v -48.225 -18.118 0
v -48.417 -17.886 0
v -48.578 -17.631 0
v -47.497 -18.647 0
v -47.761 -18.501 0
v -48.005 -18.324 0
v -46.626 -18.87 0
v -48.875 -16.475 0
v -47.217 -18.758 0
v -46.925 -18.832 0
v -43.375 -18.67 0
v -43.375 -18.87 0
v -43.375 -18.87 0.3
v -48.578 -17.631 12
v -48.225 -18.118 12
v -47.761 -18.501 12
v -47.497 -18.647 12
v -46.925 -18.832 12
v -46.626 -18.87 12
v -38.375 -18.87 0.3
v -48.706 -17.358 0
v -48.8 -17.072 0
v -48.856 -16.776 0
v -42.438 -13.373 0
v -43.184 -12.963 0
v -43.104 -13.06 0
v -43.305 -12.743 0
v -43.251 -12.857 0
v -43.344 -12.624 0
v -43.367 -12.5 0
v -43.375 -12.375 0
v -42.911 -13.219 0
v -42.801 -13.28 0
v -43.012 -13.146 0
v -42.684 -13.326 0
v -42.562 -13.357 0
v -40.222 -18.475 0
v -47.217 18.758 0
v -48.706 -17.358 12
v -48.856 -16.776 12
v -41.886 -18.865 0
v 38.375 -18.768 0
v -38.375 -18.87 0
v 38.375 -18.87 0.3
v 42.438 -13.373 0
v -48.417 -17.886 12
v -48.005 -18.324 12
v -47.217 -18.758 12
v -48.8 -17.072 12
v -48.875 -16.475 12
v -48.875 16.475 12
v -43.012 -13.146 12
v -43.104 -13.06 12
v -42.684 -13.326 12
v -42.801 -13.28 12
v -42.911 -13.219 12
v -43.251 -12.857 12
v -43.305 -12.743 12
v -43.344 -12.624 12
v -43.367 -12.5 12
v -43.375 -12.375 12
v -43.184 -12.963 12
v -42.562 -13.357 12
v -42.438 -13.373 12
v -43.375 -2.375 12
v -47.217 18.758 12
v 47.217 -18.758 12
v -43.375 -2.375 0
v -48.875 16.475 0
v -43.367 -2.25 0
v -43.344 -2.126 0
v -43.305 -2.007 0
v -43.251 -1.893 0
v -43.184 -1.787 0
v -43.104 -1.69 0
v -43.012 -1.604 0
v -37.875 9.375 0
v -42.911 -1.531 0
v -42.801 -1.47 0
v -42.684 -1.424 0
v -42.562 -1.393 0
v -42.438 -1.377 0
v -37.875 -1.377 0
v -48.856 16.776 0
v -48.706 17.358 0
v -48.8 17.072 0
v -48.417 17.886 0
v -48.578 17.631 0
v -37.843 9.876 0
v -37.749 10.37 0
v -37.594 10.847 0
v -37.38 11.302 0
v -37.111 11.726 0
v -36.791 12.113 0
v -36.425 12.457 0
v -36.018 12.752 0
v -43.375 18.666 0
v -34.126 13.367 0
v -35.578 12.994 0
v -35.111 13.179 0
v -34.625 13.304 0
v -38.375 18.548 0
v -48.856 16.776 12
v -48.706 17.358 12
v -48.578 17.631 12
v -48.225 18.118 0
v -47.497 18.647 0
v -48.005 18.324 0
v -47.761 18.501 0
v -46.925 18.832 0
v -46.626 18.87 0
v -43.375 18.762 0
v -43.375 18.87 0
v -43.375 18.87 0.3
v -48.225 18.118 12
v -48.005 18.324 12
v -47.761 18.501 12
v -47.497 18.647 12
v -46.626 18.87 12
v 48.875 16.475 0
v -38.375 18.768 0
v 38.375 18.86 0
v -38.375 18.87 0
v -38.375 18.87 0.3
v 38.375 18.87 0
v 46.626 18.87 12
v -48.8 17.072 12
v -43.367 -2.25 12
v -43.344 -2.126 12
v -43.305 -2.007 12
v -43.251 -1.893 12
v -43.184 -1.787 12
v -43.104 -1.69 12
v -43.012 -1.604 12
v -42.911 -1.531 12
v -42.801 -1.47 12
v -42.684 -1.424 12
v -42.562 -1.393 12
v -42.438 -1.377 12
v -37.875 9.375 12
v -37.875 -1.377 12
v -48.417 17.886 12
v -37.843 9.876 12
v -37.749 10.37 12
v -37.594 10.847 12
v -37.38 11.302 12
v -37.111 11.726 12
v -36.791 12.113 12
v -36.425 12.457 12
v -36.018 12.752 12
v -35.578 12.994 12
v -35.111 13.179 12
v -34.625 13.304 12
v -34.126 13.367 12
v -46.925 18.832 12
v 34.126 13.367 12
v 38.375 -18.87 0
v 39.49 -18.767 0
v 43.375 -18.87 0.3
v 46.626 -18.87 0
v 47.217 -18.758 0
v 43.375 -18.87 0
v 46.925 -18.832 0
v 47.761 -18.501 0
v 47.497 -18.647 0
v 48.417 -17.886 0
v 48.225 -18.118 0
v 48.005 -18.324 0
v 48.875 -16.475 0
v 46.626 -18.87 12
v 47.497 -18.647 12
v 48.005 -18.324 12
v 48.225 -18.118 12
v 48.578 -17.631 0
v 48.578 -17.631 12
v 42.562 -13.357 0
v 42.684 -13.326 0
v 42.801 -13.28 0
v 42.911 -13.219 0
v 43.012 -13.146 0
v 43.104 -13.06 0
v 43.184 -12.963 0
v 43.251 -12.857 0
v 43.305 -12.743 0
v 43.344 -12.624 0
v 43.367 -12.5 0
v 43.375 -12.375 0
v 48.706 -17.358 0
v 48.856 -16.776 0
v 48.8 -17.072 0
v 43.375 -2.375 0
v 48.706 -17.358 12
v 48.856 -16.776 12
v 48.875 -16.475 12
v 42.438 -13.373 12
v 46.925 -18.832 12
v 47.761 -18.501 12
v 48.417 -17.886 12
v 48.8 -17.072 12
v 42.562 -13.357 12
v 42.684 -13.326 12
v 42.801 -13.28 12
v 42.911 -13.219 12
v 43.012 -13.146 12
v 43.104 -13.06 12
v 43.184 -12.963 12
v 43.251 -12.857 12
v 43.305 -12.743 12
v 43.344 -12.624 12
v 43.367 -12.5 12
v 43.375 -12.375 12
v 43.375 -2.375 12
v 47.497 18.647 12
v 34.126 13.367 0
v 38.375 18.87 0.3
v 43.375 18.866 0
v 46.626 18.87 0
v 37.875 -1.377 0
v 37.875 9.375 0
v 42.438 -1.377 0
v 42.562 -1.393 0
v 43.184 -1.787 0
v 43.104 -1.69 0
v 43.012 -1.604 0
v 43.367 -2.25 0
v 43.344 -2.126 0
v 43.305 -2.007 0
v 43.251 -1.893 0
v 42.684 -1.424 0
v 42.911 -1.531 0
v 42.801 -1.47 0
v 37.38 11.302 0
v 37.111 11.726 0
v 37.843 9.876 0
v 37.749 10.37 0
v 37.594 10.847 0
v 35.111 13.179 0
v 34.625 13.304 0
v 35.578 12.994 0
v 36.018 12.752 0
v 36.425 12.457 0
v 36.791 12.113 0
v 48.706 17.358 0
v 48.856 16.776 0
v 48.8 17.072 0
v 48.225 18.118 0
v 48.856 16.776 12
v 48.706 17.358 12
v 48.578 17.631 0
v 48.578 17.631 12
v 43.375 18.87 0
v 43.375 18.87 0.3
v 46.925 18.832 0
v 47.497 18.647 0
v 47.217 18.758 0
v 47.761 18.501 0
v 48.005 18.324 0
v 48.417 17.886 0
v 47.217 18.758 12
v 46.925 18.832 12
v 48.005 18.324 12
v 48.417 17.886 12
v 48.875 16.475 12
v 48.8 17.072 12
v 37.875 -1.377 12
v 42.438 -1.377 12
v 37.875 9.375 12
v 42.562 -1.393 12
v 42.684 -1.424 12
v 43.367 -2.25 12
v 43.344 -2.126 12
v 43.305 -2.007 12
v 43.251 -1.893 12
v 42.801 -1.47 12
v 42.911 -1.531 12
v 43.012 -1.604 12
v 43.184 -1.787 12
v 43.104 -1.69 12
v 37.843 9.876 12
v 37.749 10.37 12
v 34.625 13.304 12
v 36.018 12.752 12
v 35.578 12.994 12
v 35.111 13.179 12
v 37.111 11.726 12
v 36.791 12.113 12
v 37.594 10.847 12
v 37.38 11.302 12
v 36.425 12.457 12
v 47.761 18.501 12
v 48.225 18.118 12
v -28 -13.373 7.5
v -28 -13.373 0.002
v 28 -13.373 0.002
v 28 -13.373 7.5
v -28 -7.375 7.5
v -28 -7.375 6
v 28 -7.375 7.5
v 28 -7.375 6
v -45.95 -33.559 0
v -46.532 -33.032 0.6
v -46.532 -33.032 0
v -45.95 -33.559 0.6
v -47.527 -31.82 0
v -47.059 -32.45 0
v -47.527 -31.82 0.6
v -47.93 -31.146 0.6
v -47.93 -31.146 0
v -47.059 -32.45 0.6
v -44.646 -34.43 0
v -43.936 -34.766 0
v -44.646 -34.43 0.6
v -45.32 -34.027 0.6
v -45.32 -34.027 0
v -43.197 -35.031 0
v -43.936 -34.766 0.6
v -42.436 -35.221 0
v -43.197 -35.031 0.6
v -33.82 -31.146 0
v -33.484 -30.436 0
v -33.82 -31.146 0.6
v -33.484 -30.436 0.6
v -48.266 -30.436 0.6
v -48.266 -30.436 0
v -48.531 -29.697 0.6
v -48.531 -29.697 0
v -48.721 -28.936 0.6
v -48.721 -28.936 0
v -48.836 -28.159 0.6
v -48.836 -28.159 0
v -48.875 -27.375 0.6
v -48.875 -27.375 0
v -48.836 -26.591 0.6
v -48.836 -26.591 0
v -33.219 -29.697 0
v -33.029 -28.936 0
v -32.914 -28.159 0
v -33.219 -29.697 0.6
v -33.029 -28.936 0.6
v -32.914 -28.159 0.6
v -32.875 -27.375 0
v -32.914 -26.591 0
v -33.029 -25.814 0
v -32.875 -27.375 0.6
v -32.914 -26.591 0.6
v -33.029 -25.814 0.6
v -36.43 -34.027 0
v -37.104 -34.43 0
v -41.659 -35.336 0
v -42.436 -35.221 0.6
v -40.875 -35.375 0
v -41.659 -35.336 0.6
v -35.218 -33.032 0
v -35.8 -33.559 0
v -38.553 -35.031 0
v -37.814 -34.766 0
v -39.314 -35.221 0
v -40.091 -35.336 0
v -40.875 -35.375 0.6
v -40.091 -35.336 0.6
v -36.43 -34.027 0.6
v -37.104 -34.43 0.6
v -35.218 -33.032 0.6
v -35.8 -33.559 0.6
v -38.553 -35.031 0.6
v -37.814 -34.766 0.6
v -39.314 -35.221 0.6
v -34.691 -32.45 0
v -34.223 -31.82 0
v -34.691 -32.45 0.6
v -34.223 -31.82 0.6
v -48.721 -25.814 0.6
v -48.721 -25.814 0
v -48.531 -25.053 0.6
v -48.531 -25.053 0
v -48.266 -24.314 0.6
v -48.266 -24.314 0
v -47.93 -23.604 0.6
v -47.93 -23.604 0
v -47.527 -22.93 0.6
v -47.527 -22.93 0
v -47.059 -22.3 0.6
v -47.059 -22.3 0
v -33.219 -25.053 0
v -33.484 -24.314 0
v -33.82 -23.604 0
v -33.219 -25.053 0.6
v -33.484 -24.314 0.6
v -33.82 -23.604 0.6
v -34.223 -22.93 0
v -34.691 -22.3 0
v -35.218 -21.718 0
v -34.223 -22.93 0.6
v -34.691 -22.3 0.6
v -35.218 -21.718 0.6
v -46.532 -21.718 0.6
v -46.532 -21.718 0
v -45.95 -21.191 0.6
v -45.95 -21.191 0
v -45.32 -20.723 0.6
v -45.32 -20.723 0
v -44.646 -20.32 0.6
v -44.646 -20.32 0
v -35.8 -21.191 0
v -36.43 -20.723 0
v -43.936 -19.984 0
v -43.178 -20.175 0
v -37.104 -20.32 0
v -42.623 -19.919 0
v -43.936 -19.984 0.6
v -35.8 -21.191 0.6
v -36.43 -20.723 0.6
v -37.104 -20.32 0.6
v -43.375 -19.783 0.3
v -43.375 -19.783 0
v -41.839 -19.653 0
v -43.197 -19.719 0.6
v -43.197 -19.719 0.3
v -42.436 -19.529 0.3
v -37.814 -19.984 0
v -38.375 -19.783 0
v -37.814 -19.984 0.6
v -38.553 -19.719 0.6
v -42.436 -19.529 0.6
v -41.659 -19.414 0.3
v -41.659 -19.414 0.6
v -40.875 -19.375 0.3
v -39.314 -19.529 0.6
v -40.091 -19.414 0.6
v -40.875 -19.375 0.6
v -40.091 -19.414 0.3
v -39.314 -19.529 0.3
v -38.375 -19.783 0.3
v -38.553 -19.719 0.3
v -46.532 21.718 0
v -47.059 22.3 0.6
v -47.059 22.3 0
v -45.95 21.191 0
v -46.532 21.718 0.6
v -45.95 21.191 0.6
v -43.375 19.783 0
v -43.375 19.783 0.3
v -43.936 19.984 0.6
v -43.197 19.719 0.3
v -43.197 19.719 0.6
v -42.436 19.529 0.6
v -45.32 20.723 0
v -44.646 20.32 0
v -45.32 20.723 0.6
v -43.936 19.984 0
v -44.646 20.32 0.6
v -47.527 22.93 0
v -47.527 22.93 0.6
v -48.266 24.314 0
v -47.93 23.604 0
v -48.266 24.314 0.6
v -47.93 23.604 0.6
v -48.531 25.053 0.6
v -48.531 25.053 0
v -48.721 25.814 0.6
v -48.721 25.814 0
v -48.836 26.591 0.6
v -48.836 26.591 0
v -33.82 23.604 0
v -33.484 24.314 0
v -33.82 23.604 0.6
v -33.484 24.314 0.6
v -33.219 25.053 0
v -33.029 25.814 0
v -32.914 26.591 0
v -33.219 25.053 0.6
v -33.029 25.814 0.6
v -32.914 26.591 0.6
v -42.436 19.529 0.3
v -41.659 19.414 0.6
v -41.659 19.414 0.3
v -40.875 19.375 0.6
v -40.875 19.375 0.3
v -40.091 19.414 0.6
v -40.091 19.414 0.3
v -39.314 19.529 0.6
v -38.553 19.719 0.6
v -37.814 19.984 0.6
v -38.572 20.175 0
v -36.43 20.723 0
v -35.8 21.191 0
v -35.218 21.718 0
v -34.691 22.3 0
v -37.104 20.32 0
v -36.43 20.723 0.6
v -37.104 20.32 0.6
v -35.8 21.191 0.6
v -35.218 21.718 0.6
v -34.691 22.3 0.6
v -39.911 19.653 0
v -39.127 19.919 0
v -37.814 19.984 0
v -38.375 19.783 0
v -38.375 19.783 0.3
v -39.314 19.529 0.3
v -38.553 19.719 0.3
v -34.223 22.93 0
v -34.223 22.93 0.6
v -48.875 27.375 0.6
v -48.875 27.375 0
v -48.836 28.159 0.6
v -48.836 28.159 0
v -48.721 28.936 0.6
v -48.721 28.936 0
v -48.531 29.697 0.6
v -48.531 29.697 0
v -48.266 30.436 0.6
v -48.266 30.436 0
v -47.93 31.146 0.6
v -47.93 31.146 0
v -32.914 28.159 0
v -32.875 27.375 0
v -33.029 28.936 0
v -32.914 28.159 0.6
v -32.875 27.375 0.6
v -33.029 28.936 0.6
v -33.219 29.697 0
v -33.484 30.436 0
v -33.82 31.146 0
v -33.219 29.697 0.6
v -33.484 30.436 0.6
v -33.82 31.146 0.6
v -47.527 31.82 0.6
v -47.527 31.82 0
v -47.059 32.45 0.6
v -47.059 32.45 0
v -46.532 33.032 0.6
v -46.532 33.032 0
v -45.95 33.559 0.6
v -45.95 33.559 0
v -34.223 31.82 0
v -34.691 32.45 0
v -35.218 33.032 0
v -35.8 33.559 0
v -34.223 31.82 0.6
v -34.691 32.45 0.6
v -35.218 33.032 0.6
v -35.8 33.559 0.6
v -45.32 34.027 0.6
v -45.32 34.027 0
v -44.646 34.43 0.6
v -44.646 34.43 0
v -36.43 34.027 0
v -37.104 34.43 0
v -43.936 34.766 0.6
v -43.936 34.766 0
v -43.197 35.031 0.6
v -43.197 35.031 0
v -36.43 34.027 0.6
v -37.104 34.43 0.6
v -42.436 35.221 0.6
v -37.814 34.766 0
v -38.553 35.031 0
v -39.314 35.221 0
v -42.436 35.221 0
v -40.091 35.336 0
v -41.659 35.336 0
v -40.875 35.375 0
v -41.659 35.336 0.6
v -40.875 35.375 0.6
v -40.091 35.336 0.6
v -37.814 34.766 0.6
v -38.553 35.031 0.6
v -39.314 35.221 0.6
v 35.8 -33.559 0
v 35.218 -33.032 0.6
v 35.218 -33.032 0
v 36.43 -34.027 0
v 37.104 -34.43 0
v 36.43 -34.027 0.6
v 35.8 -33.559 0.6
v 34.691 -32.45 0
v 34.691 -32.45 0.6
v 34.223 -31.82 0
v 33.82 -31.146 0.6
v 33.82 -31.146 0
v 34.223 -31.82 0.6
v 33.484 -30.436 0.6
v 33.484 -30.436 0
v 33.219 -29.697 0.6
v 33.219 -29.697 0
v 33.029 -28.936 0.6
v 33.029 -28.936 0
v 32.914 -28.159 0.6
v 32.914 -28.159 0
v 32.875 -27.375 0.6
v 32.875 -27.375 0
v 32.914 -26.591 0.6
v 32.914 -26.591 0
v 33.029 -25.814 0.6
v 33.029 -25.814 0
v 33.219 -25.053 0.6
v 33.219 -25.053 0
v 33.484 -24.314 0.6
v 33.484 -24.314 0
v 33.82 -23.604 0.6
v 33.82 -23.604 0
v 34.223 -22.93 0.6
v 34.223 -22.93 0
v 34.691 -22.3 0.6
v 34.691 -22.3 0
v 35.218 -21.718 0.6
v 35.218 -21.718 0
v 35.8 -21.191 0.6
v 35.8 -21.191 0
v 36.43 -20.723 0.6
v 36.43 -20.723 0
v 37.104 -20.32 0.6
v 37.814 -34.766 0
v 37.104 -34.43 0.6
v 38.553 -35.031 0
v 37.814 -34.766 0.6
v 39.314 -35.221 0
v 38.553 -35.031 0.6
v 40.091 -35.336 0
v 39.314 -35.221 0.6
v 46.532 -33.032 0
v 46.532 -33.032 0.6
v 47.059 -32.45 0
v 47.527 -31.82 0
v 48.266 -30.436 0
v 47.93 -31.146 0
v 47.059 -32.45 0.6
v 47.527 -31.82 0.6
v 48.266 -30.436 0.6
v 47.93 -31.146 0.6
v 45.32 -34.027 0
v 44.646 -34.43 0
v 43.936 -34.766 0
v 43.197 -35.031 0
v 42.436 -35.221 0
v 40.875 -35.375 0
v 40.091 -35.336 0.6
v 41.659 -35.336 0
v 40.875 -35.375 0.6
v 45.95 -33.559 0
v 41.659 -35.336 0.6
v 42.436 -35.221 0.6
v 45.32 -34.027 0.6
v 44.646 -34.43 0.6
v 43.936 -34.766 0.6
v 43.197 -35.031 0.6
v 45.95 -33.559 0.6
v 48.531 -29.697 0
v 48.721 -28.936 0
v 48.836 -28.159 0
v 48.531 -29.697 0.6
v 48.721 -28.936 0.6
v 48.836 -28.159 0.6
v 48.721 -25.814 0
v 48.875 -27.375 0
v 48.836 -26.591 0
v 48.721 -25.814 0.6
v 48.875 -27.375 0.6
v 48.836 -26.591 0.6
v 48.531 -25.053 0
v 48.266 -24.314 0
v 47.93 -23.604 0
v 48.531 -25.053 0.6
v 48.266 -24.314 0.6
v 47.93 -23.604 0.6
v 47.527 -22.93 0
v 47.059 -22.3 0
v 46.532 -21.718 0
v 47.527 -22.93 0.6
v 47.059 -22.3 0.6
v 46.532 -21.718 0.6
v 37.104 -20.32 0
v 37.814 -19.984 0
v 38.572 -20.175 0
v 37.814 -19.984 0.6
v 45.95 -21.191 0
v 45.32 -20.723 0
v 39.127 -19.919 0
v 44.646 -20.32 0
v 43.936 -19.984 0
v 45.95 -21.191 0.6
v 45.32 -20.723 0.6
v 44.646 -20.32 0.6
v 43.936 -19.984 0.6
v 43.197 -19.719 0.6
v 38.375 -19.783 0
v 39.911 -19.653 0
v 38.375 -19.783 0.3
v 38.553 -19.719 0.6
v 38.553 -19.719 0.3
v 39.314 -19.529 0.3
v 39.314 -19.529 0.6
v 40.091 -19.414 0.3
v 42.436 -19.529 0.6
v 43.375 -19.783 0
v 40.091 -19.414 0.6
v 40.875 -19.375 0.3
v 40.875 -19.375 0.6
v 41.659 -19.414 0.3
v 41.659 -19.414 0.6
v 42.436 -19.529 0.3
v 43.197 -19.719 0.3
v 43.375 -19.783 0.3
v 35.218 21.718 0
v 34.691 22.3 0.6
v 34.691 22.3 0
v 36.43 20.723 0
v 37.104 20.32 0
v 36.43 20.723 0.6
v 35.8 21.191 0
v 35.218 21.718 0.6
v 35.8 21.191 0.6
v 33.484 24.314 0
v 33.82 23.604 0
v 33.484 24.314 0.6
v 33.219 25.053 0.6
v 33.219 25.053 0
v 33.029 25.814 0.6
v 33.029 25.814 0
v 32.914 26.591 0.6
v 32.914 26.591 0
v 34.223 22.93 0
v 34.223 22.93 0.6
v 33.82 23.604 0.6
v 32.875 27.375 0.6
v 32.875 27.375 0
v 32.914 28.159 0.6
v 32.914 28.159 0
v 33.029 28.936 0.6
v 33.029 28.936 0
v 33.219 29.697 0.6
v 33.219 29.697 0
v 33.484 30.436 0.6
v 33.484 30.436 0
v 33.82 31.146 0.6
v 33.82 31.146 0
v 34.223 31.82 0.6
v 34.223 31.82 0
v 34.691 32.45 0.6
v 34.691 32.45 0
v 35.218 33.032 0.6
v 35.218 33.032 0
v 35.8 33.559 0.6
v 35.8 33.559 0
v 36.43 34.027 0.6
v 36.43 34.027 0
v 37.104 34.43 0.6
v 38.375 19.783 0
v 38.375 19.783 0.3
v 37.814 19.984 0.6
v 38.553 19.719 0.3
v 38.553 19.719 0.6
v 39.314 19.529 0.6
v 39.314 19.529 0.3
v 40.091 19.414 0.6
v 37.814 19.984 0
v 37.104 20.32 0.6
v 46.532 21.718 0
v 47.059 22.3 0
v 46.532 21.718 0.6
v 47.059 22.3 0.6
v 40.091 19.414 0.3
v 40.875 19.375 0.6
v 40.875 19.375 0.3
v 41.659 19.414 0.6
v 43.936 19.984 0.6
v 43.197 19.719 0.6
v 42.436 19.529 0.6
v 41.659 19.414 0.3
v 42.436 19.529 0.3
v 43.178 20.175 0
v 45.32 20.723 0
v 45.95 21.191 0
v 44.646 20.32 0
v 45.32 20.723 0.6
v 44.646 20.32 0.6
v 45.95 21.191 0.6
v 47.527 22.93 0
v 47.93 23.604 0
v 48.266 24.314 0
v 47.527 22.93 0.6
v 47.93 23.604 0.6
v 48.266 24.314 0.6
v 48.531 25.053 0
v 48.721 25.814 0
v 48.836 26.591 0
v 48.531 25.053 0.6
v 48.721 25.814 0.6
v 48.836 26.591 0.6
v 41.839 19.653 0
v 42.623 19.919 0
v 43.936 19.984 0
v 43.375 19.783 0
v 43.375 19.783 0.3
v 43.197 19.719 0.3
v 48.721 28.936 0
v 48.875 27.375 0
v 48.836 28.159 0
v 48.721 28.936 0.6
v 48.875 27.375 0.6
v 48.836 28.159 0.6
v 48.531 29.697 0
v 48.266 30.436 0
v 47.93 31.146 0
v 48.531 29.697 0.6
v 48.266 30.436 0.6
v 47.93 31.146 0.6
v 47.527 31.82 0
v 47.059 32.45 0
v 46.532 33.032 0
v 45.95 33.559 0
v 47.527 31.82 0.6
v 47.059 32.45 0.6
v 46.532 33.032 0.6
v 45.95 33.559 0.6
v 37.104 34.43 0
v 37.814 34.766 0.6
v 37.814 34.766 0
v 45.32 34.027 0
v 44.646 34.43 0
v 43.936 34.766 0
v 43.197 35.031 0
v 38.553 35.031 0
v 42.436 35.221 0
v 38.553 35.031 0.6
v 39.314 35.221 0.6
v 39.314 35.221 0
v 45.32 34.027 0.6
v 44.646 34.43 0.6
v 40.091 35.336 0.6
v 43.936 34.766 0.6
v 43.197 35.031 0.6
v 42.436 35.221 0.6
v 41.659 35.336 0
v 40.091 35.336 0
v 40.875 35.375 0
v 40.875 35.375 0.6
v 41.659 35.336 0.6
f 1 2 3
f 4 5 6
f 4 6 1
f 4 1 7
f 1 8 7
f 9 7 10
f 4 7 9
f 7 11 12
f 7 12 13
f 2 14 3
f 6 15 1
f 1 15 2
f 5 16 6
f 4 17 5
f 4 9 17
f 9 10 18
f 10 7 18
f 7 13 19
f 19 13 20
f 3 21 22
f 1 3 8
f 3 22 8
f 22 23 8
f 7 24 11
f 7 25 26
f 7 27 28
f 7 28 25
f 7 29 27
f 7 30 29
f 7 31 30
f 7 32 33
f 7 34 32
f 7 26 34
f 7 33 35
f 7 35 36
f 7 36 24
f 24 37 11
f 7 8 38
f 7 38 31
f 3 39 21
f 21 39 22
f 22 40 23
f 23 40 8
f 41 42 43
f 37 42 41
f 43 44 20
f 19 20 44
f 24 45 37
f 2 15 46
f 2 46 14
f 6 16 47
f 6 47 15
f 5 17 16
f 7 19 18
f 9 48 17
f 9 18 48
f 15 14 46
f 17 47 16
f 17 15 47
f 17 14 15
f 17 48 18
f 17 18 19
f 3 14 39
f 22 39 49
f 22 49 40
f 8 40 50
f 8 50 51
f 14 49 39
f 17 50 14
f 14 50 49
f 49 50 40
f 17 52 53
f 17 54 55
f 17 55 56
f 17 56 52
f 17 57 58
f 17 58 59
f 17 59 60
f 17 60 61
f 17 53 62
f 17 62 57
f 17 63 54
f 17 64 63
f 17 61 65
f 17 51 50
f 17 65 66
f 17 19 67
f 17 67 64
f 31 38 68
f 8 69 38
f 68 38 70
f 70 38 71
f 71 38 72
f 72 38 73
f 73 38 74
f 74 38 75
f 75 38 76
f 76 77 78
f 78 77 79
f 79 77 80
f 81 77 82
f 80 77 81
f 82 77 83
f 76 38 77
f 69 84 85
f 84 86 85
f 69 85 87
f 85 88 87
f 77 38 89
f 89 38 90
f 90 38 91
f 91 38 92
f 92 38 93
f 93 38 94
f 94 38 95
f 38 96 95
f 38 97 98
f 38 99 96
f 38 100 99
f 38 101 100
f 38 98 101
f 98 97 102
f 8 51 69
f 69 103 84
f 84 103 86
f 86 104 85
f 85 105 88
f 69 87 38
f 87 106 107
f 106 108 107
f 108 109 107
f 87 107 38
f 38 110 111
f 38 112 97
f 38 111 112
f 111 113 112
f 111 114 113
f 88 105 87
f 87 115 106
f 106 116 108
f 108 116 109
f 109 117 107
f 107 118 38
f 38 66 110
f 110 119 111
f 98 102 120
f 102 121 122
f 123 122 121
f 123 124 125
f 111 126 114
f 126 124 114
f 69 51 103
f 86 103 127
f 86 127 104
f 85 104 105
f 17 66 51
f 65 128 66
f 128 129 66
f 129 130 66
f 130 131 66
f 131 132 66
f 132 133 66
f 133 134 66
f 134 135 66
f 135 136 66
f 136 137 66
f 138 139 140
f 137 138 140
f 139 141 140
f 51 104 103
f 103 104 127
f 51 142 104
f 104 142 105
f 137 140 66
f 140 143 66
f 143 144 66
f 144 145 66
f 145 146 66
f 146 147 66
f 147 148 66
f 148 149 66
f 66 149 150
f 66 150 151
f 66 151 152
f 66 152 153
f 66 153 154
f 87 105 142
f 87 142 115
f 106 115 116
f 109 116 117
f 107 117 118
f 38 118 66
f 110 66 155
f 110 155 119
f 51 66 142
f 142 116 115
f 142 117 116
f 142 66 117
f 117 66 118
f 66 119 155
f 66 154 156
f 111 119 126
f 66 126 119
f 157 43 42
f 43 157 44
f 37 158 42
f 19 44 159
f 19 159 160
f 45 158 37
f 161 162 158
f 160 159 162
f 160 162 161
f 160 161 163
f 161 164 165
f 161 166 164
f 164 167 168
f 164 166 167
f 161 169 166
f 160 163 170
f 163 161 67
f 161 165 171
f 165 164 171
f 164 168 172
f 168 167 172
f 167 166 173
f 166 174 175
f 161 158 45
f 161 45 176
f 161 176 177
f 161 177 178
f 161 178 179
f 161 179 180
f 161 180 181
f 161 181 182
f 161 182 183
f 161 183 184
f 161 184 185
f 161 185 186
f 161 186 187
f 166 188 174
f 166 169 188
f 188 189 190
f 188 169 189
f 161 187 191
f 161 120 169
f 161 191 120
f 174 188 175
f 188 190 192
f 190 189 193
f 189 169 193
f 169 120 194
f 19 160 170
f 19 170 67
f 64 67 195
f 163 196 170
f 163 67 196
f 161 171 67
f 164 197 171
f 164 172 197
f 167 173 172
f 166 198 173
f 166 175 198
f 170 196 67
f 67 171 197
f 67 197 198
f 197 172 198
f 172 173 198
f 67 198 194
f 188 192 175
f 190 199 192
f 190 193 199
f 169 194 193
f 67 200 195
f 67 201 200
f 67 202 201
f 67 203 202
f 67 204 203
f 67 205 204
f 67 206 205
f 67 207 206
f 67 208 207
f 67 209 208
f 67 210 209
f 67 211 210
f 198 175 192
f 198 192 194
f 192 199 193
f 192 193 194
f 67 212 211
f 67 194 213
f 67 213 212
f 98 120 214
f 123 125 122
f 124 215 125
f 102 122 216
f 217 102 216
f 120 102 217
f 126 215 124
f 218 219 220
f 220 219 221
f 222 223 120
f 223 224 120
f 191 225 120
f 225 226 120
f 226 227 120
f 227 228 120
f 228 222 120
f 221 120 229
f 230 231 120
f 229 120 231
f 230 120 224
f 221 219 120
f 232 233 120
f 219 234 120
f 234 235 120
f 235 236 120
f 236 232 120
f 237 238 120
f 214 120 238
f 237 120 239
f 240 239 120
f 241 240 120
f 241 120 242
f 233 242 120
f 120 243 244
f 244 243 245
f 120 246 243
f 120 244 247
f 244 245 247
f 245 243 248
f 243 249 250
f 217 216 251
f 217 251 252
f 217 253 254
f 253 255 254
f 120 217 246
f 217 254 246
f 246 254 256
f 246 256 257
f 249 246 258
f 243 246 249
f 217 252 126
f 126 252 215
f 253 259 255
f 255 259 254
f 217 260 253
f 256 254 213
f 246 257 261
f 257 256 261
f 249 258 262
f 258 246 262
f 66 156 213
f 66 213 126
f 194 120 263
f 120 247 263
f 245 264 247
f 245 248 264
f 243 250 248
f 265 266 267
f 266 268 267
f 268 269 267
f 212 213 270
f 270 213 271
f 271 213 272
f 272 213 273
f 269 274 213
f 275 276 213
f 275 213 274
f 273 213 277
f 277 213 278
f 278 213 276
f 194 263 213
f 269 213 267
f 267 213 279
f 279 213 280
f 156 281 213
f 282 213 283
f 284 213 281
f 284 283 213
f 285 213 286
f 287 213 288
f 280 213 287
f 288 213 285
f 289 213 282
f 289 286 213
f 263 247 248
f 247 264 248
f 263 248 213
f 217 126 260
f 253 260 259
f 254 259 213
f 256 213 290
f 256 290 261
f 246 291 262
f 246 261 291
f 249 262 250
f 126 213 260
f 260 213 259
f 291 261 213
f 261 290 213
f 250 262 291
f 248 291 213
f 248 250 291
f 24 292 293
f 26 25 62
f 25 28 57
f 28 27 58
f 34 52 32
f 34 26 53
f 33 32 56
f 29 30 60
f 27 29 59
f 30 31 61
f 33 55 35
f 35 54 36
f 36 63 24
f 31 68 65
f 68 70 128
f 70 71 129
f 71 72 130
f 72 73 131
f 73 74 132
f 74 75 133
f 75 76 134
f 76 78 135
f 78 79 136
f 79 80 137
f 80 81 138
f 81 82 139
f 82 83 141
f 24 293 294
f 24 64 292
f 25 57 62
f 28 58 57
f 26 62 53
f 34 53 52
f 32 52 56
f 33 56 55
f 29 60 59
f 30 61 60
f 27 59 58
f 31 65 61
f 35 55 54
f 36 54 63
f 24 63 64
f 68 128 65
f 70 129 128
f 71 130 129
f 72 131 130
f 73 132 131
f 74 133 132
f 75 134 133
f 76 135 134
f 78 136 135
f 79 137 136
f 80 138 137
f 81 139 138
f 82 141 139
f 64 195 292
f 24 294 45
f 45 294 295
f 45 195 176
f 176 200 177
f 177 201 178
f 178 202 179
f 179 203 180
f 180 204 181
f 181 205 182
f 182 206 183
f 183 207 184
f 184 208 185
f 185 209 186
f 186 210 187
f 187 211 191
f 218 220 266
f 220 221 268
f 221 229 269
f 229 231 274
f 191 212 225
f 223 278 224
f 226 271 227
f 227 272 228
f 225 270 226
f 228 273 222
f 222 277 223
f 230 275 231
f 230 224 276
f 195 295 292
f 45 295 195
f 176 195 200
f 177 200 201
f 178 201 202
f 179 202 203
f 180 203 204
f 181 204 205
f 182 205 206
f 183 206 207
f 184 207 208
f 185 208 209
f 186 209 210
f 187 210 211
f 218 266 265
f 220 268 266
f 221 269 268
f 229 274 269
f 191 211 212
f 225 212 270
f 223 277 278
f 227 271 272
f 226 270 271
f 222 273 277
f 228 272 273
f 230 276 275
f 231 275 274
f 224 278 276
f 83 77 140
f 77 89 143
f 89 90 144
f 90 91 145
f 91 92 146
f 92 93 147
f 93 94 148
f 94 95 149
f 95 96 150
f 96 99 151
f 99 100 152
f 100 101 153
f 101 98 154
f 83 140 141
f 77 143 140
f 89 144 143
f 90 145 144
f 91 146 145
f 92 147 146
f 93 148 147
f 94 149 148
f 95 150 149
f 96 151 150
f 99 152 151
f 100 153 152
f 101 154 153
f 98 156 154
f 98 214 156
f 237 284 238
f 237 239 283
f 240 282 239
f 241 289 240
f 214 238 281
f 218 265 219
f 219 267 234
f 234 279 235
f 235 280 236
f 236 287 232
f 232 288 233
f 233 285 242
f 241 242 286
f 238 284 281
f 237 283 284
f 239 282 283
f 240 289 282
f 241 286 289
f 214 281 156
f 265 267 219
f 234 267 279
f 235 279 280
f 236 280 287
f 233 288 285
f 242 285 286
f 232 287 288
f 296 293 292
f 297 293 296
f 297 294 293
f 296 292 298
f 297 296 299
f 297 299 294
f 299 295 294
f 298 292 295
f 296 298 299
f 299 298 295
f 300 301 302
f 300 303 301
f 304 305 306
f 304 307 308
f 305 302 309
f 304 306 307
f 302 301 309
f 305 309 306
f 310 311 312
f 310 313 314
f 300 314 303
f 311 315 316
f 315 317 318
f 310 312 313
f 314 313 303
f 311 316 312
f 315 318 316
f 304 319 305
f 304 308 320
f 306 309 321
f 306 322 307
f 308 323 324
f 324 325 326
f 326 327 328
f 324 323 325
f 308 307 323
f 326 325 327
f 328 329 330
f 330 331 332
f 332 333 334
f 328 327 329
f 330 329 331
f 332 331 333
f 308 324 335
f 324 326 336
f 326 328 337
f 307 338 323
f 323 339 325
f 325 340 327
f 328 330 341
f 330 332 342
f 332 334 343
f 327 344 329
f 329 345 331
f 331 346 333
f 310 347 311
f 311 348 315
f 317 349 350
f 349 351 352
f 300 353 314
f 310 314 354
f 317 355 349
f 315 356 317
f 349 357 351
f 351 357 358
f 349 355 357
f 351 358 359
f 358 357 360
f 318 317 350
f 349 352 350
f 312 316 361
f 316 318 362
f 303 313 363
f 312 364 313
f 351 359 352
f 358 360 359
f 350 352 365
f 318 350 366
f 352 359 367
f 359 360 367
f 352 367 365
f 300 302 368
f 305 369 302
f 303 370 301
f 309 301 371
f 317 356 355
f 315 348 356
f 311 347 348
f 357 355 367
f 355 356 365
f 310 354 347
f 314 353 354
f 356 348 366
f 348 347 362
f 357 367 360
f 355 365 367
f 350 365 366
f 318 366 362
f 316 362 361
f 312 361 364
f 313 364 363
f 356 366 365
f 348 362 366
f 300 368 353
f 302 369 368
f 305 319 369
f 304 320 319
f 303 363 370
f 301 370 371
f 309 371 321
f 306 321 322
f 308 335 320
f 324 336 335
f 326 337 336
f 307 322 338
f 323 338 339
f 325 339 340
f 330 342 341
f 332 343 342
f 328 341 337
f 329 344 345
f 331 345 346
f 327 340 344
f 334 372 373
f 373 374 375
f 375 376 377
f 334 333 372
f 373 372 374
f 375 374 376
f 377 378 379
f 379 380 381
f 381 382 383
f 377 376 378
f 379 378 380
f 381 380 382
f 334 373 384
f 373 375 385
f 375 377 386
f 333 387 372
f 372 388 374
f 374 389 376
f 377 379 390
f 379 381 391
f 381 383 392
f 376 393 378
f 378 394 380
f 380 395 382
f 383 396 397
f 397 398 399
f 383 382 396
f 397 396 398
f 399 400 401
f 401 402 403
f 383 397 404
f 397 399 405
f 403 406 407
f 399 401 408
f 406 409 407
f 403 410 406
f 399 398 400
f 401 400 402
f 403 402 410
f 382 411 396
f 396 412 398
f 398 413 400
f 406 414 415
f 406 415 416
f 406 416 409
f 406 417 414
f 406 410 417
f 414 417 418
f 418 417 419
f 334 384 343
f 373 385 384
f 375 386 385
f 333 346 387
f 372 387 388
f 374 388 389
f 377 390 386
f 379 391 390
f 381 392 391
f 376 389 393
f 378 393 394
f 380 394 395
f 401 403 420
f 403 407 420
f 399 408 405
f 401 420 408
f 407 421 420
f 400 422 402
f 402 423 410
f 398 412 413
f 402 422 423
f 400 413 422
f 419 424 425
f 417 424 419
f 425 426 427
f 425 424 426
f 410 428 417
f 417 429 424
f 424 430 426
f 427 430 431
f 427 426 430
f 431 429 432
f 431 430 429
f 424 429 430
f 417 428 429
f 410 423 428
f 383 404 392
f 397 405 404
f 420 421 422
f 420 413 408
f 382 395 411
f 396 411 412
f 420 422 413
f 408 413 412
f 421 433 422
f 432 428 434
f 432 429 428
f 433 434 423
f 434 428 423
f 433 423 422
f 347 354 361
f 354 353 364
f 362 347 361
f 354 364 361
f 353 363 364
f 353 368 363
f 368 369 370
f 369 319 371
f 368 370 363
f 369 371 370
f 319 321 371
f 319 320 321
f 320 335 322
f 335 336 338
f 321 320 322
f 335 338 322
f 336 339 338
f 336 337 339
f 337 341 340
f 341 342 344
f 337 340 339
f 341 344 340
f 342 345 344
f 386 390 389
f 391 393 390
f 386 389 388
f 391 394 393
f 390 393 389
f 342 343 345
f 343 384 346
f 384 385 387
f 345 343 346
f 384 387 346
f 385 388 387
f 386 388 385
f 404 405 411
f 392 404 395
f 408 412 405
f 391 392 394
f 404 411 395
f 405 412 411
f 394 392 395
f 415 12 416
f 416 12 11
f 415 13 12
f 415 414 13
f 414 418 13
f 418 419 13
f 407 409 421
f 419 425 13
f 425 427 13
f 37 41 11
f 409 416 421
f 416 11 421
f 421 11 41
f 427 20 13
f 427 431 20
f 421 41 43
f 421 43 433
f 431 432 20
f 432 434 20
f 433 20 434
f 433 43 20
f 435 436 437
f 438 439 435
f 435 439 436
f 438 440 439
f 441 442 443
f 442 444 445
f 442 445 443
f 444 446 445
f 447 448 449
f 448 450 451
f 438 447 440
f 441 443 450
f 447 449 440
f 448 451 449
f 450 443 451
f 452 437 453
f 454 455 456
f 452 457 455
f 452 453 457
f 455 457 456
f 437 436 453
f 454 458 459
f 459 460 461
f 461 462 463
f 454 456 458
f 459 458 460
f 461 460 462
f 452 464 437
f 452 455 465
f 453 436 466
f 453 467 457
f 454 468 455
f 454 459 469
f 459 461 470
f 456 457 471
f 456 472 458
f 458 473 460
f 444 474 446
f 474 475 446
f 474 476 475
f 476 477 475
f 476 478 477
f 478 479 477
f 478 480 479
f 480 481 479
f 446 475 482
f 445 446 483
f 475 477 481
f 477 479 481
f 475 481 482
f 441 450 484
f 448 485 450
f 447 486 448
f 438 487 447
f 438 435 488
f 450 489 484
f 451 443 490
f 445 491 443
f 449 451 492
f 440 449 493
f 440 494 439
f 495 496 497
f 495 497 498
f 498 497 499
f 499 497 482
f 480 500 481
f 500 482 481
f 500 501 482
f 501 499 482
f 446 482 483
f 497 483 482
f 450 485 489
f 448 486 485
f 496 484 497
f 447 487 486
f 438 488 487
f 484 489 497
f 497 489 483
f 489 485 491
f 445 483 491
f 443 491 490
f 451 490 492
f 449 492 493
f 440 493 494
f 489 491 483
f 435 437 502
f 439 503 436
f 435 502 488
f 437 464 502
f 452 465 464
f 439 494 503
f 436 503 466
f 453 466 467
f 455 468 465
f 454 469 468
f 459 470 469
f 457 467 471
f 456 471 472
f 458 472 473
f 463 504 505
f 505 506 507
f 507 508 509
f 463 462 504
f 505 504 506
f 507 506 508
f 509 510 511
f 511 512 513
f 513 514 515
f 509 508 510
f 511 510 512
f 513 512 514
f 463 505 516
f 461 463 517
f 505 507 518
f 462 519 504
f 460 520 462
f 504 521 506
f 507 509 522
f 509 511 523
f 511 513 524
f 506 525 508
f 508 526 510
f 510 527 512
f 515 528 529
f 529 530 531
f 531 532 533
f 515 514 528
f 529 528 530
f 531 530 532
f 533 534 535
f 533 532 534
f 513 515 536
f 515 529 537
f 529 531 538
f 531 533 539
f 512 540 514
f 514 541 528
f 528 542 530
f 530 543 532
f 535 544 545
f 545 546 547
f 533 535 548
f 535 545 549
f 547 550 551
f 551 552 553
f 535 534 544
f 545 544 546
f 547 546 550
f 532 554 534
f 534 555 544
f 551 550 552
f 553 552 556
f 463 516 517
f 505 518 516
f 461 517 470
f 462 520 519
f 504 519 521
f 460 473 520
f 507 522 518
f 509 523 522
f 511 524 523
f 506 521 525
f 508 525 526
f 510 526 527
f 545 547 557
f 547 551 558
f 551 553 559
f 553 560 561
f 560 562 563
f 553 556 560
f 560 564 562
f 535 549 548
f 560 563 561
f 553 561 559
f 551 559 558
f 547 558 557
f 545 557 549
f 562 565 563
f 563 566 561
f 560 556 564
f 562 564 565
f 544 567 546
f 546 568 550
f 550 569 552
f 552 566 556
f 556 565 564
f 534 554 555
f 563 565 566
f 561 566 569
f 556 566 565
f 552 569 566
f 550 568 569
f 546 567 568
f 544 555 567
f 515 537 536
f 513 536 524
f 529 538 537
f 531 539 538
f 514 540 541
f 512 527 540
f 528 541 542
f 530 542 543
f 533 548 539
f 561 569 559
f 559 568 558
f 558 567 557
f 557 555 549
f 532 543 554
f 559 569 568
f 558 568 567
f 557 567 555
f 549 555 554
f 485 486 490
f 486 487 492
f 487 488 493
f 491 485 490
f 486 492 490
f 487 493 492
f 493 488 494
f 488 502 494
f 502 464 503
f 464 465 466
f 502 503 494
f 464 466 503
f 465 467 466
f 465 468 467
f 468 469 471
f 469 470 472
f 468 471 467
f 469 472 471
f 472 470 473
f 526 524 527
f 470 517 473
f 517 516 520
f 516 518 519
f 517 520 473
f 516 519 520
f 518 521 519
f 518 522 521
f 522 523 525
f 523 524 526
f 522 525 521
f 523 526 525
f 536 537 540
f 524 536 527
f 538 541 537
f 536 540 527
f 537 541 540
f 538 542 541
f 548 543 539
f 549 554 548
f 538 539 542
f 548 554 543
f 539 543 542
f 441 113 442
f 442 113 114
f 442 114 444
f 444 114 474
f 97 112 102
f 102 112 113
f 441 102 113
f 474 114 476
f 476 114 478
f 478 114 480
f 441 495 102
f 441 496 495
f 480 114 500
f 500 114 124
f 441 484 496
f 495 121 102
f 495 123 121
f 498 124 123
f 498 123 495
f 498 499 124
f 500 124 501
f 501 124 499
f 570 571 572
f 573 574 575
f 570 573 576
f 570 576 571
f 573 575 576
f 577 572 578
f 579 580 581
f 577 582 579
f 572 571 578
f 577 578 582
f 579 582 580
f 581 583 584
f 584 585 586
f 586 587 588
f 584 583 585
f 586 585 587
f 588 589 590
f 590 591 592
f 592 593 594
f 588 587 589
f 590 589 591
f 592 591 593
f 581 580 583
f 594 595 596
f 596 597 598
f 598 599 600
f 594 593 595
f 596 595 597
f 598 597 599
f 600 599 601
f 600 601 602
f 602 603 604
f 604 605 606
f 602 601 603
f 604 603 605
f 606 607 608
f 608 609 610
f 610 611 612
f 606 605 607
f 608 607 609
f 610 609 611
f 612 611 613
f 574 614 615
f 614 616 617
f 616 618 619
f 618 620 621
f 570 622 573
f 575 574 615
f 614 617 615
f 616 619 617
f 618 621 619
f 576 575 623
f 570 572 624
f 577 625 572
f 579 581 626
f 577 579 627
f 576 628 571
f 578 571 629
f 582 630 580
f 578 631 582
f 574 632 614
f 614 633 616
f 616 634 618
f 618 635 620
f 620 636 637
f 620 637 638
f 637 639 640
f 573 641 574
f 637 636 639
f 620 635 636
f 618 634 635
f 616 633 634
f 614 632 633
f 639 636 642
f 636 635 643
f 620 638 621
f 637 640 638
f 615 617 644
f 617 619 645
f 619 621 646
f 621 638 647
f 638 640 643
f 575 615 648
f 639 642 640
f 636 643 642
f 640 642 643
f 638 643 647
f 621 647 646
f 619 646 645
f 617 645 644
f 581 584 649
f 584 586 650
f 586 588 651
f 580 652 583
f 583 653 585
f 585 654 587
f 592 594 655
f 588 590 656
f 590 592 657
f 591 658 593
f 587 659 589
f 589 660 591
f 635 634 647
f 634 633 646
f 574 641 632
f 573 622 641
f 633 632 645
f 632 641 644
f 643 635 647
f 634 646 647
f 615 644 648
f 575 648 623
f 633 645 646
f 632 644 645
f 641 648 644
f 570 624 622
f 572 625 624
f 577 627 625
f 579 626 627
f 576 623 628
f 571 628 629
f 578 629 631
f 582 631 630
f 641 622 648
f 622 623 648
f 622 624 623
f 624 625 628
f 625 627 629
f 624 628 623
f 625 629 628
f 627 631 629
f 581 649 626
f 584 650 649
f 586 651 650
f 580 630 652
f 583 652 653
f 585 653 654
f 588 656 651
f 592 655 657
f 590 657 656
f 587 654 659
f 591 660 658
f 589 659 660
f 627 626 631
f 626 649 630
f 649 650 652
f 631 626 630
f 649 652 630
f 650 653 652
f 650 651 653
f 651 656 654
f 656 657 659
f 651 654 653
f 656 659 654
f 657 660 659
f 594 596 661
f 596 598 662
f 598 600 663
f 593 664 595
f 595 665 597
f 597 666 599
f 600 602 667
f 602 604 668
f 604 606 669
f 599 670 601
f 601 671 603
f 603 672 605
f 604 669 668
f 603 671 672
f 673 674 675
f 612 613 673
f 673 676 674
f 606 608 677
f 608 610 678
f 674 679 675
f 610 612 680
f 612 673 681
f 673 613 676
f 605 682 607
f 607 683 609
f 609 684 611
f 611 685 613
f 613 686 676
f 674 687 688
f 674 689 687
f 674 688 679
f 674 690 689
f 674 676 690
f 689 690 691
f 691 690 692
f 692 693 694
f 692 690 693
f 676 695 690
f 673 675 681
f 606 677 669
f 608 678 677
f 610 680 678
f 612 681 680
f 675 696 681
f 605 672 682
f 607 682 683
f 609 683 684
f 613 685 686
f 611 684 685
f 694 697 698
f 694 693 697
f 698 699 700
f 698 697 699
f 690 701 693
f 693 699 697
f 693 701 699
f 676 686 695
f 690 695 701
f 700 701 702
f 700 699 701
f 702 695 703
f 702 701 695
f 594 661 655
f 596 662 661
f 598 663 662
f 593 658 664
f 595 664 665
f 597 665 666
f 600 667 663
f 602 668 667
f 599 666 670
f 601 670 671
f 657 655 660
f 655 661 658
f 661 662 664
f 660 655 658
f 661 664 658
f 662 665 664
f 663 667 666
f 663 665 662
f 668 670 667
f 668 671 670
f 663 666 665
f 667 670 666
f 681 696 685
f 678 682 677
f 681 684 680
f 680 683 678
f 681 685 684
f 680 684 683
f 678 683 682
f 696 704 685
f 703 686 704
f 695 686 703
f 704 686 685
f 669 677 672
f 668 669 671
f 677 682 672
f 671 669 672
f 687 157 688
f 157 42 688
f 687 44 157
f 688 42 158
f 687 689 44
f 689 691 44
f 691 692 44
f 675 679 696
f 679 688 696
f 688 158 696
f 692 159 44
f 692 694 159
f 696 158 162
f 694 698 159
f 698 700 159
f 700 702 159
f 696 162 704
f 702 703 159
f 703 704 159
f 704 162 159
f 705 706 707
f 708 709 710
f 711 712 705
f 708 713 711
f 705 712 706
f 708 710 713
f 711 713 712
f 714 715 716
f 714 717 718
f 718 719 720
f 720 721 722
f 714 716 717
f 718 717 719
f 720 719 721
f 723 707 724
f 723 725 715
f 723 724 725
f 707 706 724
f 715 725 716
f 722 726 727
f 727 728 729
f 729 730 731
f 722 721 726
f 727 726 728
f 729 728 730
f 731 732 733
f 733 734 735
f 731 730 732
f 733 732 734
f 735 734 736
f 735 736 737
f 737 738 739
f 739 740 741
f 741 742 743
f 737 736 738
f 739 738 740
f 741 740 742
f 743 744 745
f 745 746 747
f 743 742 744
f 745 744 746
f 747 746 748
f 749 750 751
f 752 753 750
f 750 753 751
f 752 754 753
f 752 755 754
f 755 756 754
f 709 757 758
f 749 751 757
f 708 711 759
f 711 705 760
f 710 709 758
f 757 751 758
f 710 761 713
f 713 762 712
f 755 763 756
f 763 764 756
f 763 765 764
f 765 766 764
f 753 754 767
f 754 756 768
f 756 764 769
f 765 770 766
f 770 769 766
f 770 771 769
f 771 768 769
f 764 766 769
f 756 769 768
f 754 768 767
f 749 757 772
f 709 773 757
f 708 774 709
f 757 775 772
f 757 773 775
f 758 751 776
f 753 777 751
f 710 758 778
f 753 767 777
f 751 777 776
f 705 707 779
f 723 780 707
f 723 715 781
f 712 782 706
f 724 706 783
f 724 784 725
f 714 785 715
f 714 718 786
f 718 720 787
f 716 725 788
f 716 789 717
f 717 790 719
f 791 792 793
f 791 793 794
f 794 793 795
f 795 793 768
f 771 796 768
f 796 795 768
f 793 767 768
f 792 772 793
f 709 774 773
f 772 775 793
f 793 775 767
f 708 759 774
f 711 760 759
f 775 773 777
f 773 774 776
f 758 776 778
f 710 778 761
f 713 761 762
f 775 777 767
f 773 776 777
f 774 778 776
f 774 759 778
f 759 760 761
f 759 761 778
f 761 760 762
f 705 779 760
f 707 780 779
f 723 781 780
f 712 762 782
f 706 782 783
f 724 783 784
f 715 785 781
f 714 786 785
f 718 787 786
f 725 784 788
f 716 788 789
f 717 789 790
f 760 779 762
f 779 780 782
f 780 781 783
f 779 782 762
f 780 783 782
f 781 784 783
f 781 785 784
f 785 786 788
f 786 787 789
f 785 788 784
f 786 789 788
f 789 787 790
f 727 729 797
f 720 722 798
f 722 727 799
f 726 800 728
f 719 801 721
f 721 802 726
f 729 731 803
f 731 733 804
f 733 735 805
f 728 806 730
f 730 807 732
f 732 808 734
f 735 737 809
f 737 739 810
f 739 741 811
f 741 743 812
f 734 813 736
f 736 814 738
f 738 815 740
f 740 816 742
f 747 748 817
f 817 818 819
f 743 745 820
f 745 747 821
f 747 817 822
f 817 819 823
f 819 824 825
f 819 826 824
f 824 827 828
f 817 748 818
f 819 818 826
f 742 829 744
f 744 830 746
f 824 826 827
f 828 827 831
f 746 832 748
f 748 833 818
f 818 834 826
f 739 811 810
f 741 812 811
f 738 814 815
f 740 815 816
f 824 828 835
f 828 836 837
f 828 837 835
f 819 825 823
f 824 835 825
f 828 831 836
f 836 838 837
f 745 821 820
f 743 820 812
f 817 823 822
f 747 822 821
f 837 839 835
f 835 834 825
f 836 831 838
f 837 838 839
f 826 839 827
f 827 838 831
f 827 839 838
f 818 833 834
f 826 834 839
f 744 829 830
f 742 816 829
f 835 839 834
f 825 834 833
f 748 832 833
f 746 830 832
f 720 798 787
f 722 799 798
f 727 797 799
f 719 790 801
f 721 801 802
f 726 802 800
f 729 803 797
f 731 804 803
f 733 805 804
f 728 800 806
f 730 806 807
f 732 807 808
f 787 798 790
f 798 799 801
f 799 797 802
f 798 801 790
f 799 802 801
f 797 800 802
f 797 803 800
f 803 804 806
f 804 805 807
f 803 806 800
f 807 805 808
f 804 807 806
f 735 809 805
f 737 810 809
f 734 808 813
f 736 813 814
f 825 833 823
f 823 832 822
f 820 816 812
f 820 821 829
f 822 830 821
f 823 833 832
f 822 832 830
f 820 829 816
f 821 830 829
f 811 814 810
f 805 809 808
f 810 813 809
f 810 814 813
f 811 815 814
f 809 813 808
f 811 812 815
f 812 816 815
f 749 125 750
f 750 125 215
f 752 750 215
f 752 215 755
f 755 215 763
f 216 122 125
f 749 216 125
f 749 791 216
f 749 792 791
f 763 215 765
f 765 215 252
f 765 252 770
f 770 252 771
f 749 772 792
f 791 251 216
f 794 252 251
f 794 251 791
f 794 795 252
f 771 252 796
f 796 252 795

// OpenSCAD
$fn = 50;

union() {
	difference() {
		union() {
			hull() {
				translate(v = [-46.475, 16.475, 0]) {
					cylinder(h = 12, r = 2.4);
				}
				translate(v = [46.475, 16.475, 0]) {
					cylinder(h = 12, r = 2.4);
				}
				translate(v = [-46.475, -16.475, 0]) {
					cylinder(h = 12, r = 2.4);
				}
				translate(v = [46.475, -16.475, 0]) {
					cylinder(h = 12, r = 2.4);
				}
			}
		}
		union() {
			translate(v = [0.0, -7.375, -0.1]) {
				hull() {
					translate(v = [-42.375, 5.0, 0]) {
						cylinder(h = 12.2, r = 1.0);
					}
					translate(v = [42.375, 5.0, 0]) {
						cylinder(h = 12.2, r = 1.0);
					}
					translate(v = [-42.375, -5.0, 0]) {
						cylinder(h = 12.2, r = 1.0);
					}
					translate(v = [42.375, -5.0, 0]) {
						cylinder(h = 12.2, r = 1.0);
					}
				}
			}
			translate(v = [0.0, 0.0, -0.1]) {
				hull() {
					translate(v = [-33.875, 9.375, 0]) {
						cylinder(h = 12.2, r = 4.0);
					}
					translate(v = [33.875, 9.375, 0]) {
						cylinder(h = 12.2, r = 4.0);
					}
					translate(v = [-33.875, -9.375, 0]) {
						cylinder(h = 12.2, r = 4.0);
					}
					translate(v = [33.875, -9.375, 0]) {
						cylinder(h = 12.2, r = 4.0);
					}
				}
			}
		}
	}
	union() {
		#translate(v = [-28.0, -13.375, 0]) {
			rotate(a = [90, 0, 90]) {
				linear_extrude(height = 56.0) {
					polygon(points = [[-1.8, 0], [0, 0], [6.0, 6.0], [6.0, 7.5], [-1.8, 7.5]]);
				}
			}
		}
		translate(v = [-40.875, -27.375, 0]) {
			linear_extrude(height = 0.6) {
				polygon(points = [[8.0, 0.0], [7.961477813377575, 0.7841371226364848], [7.8462822432258434, 1.560722576129026], [7.655522685857671, 2.3222774180356986], [7.391036260090294, 3.0614674589207183], [7.05537011478684, 3.771173894607981], [6.651756898420362, 4.444561864156817], [6.184083626901896, 5.075146273309164], [5.656854249492381, 5.656854249492381], [5.075146273309164, 6.184083626901895], [4.444561864156818, 6.651756898420362], [3.7711738946079825, 7.0553701147868395], [3.0614674589207187, 7.391036260090294], [2.3222774180356986, 7.6555226858576715], [1.5607225761290267, 7.8462822432258434], [0.7841371226364862, 7.9614778133775745], [4.898587196589413e-16, 8.0], [-0.7841371226364852, 7.961477813377575], [-1.5607225761290255, 7.8462822432258434], [-2.3222774180356973, 7.6555226858576715], [-3.061467458920718, 7.391036260090294], [-3.7711738946079816, 7.05537011478684], [-4.444561864156816, 6.651756898420363], [-5.075146273309163, 6.184083626901897], [-5.65685424949238, 5.656854249492381], [-6.184083626901896, 5.075146273309164], [-6.651756898420363, 4.444561864156817], [-7.0553701147868395, 3.7711738946079825], [-7.391036260090294, 3.061467458920719], [-7.655522685857671, 2.322277418035699], [-7.8462822432258434, 1.5607225761290289], [-7.9614778133775745, 0.7841371226364866], [-8.0, 9.797174393178826e-16], [-7.961477813377575, -0.7841371226364847], [-7.8462822432258434, -1.5607225761290269], [-7.6555226858576715, -2.322277418035697], [-7.391036260090295, -3.0614674589207174], [-7.05537011478684, -3.771173894607981], [-6.651756898420364, -4.444561864156816], [-6.184083626901897, -5.075146273309162], [-5.6568542494923815, -5.65685424949238], [-5.0751462733091675, -6.184083626901893], [-4.444561864156817, -6.651756898420362], [-3.771173894607983, -7.0553701147868395], [-3.0614674589207227, -7.391036260090292], [-2.3222774180356995, -7.655522685857671], [-1.5607225761290293, -7.846282243225843], [-0.7841371226364836, -7.961477813377575], [-1.4695761589768238e-15, -8.0], [0.7841371226364807, -7.961477813377575], [1.5607225761290264, -7.8462822432258434], [2.3222774180356964, -7.6555226858576715], [3.06146745892072, -7.391036260090293], [3.7711738946079807, -7.05537011478684], [4.444561864156815, -6.651756898420364], [5.075146273309165, -6.184083626901895], [5.656854249492379, -5.6568542494923815], [6.184083626901892, -5.0751462733091675], [6.651756898420362, -4.444561864156817], [7.055370114786839, -3.7711738946079834], [7.391036260090292, -3.061467458920723], [7.655522685857671, -2.3222774180357], [7.846282243225843, -1.5607225761290298], [7.961477813377575, -0.784137122636484]]);
			}
		}
		translate(v = [-43.375, -20.175, 0]) {
			cube(size = [5.0, 1.6999999999999993, 0.3]);
		}
		translate(v = [-40.875, 27.375, 0]) {
			linear_extrude(height = 0.6) {
				polygon(points = [[8.0, 0.0], [7.961477813377575, 0.7841371226364848], [7.8462822432258434, 1.560722576129026], [7.655522685857671, 2.3222774180356986], [7.391036260090294, 3.0614674589207183], [7.05537011478684, 3.771173894607981], [6.651756898420362, 4.444561864156817], [6.184083626901896, 5.075146273309164], [5.656854249492381, 5.656854249492381], [5.075146273309164, 6.184083626901895], [4.444561864156818, 6.651756898420362], [3.7711738946079825, 7.0553701147868395], [3.0614674589207187, 7.391036260090294], [2.3222774180356986, 7.6555226858576715], [1.5607225761290267, 7.8462822432258434], [0.7841371226364862, 7.9614778133775745], [4.898587196589413e-16, 8.0], [-0.7841371226364852, 7.961477813377575], [-1.5607225761290255, 7.8462822432258434], [-2.3222774180356973, 7.6555226858576715], [-3.061467458920718, 7.391036260090294], [-3.7711738946079816, 7.05537011478684], [-4.444561864156816, 6.651756898420363], [-5.075146273309163, 6.184083626901897], [-5.65685424949238, 5.656854249492381], [-6.184083626901896, 5.075146273309164], [-6.651756898420363, 4.444561864156817], [-7.0553701147868395, 3.7711738946079825], [-7.391036260090294, 3.061467458920719], [-7.655522685857671, 2.322277418035699], [-7.8462822432258434, 1.5607225761290289], [-7.9614778133775745, 0.7841371226364866], [-8.0, 9.797174393178826e-16], [-7.961477813377575, -0.7841371226364847], [-7.8462822432258434, -1.5607225761290269], [-7.6555226858576715, -2.322277418035697], [-7.391036260090295, -3.0614674589207174], [-7.05537011478684, -3.771173894607981], [-6.651756898420364, -4.444561864156816], [-6.184083626901897, -5.075146273309162], [-5.6568542494923815, -5.65685424949238], [-5.0751462733091675, -6.184083626901893], [-4.444561864156817, -6.651756898420362], [-3.771173894607983, -7.0553701147868395], [-3.0614674589207227, -7.391036260090292], [-2.3222774180356995, -7.655522685857671], [-1.5607225761290293, -7.846282243225843], [-0.7841371226364836, -7.961477813377575], [-1.4695761589768238e-15, -8.0], [0.7841371226364807, -7.961477813377575], [1.5607225761290264, -7.8462822432258434], [2.3222774180356964, -7.6555226858576715], [3.06146745892072, -7.391036260090293], [3.7711738946079807, -7.05537011478684], [4.444561864156815, -6.651756898420364], [5.075146273309165, -6.184083626901895], [5.656854249492379, -5.6568542494923815], [6.184083626901892, -5.0751462733091675], [6.651756898420362, -4.444561864156817], [7.055370114786839, -3.7711738946079834], [7.391036260090292, -3.061467458920723], [7.655522685857671, -2.3222774180357], [7.846282243225843, -1.5607225761290298], [7.961477813377575, -0.784137122636484]]);
			}
		}
		translate(v = [-43.375, 18.475, 0]) {
			cube(size = [5.0, 1.6999999999999993, 0.3]);
		}
		translate(v = [40.875, -27.375, 0]) {
			linear_extrude(height = 0.6) {
				polygon(points = [[8.0, 0.0], [7.961477813377575, 0.7841371226364848], [7.8462822432258434, 1.560722576129026], [7.655522685857671, 2.3222774180356986], [7.391036260090294, 3.0614674589207183], [7.05537011478684, 3.771173894607981], [6.651756898420362, 4.444561864156817], [6.184083626901896, 5.075146273309164], [5.656854249492381, 5.656854249492381], [5.075146273309164, 6.184083626901895], [4.444561864156818, 6.651756898420362], [3.7711738946079825, 7.0553701147868395], [3.0614674589207187, 7.391036260090294], [2.3222774180356986, 7.6555226858576715], [1.5607225761290267, 7.8462822432258434], [0.7841371226364862, 7.9614778133775745], [4.898587196589413e-16, 8.0], [-0.7841371226364852, 7.961477813377575], [-1.5607225761290255, 7.8462822432258434], [-2.3222774180356973, 7.6555226858576715], [-3.061467458920718, 7.391036260090294], [-3.7711738946079816, 7.05537011478684], [-4.444561864156816, 6.651756898420363], [-5.075146273309163, 6.184083626901897], [-5.65685424949238, 5.656854249492381], [-6.184083626901896, 5.075146273309164], [-6.651756898420363, 4.444561864156817], [-7.0553701147868395, 3.7711738946079825], [-7.391036260090294, 3.061467458920719], [-7.655522685857671, 2.322277418035699], [-7.8462822432258434, 1.5607225761290289], [-7.9614778133775745, 0.7841371226364866], [-8.0, 9.797174393178826e-16], [-7.961477813377575, -0.7841371226364847], [-7.8462822432258434, -1.5607225761290269], [-7.6555226858576715, -2.322277418035697], [-7.391036260090295, -3.0614674589207174], [-7.05537011478684, -3.771173894607981], [-6.651756898420364, -4.444561864156816], [-6.184083626901897, -5.075146273309162], [-5.6568542494923815, -5.65685424949238], [-5.0751462733091675, -6.184083626901893], [-4.444561864156817, -6.651756898420362], [-3.771173894607983, -7.0553701147868395], [-3.0614674589207227, -7.391036260090292], [-2.3222774180356995, -7.655522685857671], [-1.5607225761290293, -7.846282243225843], [-0.7841371226364836, -7.961477813377575], [-1.4695761589768238e-15, -8.0], [0.7841371226364807, -7.961477813377575], [1.5607225761290264, -7.8462822432258434], [2.3222774180356964, -7.6555226858576715], [3.06146745892072, -7.391036260090293], [3.7711738946079807, -7.05537011478684], [4.444561864156815, -6.651756898420364], [5.075146273309165, -6.184083626901895], [5.656854249492379, -5.6568542494923815], [6.184083626901892, -5.0751462733091675], [6.651756898420362, -4.444561864156817], [7.055370114786839, -3.7711738946079834], [7.391036260090292, -3.061467458920723], [7.655522685857671, -2.3222774180357], [7.846282243225843, -1.5607225761290298], [7.961477813377575, -0.784137122636484]]);
			}
		}
		translate(v = [38.375, -20.175, 0]) {
			cube(size = [5.0, 1.6999999999999993, 0.3]);
		}
		translate(v = [40.875, 27.375, 0]) {
			linear_extrude(height = 0.6) {
				polygon(points = [[8.0, 0.0], [7.961477813377575, 0.7841371226364848], [7.8462822432258434, 1.560722576129026], [7.655522685857671, 2.3222774180356986], [7.391036260090294, 3.0614674589207183], [7.05537011478684, 3.771173894607981], [6.651756898420362, 4.444561864156817], [6.184083626901896, 5.075146273309164], [5.656854249492381, 5.656854249492381], [5.075146273309164, 6.184083626901895], [4.444561864156818, 6.651756898420362], [3.7711738946079825, 7.0553701147868395], [3.0614674589207187, 7.391036260090294], [2.3222774180356986, 7.6555226858576715], [1.5607225761290267, 7.8462822432258434], [0.7841371226364862, 7.9614778133775745], [4.898587196589413e-16, 8.0], [-0.7841371226364852, 7.961477813377575], [-1.5607225761290255, 7.8462822432258434], [-2.3222774180356973, 7.6555226858576715], [-3.061467458920718, 7.391036260090294], [-3.7711738946079816, 7.05537011478684], [-4.444561864156816, 6.651756898420363], [-5.075146273309163, 6.184083626901897], [-5.65685424949238, 5.656854249492381], [-6.184083626901896, 5.075146273309164], [-6.651756898420363, 4.444561864156817], [-7.0553701147868395, 3.7711738946079825], [-7.391036260090294, 3.061467458920719], [-7.655522685857671, 2.322277418035699], [-7.8462822432258434, 1.5607225761290289], [-7.9614778133775745, 0.7841371226364866], [-8.0, 9.797174393178826e-16], [-7.961477813377575, -0.7841371226364847], [-7.8462822432258434, -1.5607225761290269], [-7.6555226858576715, -2.322277418035697], [-7.391036260090295, -3.0614674589207174], [-7.05537011478684, -3.771173894607981], [-6.651756898420364, -4.444561864156816], [-6.184083626901897, -5.075146273309162], [-5.6568542494923815, -5.65685424949238], [-5.0751462733091675, -6.184083626901893], [-4.444561864156817, -6.651756898420362], [-3.771173894607983, -7.0553701147868395], [-3.0614674589207227, -7.391036260090292], [-2.3222774180356995, -7.655522685857671], [-1.5607225761290293, -7.846282243225843], [-0.7841371226364836, -7.961477813377575], [-1.4695761589768238e-15, -8.0], [0.7841371226364807, -7.961477813377575], [1.5607225761290264, -7.8462822432258434], [2.3222774180356964, -7.6555226858576715], [3.06146745892072, -7.391036260090293], [3.7711738946079807, -7.05537011478684], [4.444561864156815, -6.651756898420364], [5.075146273309165, -6.184083626901895], [5.656854249492379, -5.6568542494923815], [6.184083626901892, -5.0751462733091675], [6.651756898420362, -4.444561864156817], [7.055370114786839, -3.7711738946079834], [7.391036260090292, -3.061467458920723], [7.655522685857671, -2.3222774180357], [7.846282243225843, -1.5607225761290298], [7.961477813377575, -0.784137122636484]]);
			}
		}
		translate(v = [38.375, 18.475, 0]) {
			cube(size = [5.0, 1.6999999999999993, 0.3]);
		}
	}
}
